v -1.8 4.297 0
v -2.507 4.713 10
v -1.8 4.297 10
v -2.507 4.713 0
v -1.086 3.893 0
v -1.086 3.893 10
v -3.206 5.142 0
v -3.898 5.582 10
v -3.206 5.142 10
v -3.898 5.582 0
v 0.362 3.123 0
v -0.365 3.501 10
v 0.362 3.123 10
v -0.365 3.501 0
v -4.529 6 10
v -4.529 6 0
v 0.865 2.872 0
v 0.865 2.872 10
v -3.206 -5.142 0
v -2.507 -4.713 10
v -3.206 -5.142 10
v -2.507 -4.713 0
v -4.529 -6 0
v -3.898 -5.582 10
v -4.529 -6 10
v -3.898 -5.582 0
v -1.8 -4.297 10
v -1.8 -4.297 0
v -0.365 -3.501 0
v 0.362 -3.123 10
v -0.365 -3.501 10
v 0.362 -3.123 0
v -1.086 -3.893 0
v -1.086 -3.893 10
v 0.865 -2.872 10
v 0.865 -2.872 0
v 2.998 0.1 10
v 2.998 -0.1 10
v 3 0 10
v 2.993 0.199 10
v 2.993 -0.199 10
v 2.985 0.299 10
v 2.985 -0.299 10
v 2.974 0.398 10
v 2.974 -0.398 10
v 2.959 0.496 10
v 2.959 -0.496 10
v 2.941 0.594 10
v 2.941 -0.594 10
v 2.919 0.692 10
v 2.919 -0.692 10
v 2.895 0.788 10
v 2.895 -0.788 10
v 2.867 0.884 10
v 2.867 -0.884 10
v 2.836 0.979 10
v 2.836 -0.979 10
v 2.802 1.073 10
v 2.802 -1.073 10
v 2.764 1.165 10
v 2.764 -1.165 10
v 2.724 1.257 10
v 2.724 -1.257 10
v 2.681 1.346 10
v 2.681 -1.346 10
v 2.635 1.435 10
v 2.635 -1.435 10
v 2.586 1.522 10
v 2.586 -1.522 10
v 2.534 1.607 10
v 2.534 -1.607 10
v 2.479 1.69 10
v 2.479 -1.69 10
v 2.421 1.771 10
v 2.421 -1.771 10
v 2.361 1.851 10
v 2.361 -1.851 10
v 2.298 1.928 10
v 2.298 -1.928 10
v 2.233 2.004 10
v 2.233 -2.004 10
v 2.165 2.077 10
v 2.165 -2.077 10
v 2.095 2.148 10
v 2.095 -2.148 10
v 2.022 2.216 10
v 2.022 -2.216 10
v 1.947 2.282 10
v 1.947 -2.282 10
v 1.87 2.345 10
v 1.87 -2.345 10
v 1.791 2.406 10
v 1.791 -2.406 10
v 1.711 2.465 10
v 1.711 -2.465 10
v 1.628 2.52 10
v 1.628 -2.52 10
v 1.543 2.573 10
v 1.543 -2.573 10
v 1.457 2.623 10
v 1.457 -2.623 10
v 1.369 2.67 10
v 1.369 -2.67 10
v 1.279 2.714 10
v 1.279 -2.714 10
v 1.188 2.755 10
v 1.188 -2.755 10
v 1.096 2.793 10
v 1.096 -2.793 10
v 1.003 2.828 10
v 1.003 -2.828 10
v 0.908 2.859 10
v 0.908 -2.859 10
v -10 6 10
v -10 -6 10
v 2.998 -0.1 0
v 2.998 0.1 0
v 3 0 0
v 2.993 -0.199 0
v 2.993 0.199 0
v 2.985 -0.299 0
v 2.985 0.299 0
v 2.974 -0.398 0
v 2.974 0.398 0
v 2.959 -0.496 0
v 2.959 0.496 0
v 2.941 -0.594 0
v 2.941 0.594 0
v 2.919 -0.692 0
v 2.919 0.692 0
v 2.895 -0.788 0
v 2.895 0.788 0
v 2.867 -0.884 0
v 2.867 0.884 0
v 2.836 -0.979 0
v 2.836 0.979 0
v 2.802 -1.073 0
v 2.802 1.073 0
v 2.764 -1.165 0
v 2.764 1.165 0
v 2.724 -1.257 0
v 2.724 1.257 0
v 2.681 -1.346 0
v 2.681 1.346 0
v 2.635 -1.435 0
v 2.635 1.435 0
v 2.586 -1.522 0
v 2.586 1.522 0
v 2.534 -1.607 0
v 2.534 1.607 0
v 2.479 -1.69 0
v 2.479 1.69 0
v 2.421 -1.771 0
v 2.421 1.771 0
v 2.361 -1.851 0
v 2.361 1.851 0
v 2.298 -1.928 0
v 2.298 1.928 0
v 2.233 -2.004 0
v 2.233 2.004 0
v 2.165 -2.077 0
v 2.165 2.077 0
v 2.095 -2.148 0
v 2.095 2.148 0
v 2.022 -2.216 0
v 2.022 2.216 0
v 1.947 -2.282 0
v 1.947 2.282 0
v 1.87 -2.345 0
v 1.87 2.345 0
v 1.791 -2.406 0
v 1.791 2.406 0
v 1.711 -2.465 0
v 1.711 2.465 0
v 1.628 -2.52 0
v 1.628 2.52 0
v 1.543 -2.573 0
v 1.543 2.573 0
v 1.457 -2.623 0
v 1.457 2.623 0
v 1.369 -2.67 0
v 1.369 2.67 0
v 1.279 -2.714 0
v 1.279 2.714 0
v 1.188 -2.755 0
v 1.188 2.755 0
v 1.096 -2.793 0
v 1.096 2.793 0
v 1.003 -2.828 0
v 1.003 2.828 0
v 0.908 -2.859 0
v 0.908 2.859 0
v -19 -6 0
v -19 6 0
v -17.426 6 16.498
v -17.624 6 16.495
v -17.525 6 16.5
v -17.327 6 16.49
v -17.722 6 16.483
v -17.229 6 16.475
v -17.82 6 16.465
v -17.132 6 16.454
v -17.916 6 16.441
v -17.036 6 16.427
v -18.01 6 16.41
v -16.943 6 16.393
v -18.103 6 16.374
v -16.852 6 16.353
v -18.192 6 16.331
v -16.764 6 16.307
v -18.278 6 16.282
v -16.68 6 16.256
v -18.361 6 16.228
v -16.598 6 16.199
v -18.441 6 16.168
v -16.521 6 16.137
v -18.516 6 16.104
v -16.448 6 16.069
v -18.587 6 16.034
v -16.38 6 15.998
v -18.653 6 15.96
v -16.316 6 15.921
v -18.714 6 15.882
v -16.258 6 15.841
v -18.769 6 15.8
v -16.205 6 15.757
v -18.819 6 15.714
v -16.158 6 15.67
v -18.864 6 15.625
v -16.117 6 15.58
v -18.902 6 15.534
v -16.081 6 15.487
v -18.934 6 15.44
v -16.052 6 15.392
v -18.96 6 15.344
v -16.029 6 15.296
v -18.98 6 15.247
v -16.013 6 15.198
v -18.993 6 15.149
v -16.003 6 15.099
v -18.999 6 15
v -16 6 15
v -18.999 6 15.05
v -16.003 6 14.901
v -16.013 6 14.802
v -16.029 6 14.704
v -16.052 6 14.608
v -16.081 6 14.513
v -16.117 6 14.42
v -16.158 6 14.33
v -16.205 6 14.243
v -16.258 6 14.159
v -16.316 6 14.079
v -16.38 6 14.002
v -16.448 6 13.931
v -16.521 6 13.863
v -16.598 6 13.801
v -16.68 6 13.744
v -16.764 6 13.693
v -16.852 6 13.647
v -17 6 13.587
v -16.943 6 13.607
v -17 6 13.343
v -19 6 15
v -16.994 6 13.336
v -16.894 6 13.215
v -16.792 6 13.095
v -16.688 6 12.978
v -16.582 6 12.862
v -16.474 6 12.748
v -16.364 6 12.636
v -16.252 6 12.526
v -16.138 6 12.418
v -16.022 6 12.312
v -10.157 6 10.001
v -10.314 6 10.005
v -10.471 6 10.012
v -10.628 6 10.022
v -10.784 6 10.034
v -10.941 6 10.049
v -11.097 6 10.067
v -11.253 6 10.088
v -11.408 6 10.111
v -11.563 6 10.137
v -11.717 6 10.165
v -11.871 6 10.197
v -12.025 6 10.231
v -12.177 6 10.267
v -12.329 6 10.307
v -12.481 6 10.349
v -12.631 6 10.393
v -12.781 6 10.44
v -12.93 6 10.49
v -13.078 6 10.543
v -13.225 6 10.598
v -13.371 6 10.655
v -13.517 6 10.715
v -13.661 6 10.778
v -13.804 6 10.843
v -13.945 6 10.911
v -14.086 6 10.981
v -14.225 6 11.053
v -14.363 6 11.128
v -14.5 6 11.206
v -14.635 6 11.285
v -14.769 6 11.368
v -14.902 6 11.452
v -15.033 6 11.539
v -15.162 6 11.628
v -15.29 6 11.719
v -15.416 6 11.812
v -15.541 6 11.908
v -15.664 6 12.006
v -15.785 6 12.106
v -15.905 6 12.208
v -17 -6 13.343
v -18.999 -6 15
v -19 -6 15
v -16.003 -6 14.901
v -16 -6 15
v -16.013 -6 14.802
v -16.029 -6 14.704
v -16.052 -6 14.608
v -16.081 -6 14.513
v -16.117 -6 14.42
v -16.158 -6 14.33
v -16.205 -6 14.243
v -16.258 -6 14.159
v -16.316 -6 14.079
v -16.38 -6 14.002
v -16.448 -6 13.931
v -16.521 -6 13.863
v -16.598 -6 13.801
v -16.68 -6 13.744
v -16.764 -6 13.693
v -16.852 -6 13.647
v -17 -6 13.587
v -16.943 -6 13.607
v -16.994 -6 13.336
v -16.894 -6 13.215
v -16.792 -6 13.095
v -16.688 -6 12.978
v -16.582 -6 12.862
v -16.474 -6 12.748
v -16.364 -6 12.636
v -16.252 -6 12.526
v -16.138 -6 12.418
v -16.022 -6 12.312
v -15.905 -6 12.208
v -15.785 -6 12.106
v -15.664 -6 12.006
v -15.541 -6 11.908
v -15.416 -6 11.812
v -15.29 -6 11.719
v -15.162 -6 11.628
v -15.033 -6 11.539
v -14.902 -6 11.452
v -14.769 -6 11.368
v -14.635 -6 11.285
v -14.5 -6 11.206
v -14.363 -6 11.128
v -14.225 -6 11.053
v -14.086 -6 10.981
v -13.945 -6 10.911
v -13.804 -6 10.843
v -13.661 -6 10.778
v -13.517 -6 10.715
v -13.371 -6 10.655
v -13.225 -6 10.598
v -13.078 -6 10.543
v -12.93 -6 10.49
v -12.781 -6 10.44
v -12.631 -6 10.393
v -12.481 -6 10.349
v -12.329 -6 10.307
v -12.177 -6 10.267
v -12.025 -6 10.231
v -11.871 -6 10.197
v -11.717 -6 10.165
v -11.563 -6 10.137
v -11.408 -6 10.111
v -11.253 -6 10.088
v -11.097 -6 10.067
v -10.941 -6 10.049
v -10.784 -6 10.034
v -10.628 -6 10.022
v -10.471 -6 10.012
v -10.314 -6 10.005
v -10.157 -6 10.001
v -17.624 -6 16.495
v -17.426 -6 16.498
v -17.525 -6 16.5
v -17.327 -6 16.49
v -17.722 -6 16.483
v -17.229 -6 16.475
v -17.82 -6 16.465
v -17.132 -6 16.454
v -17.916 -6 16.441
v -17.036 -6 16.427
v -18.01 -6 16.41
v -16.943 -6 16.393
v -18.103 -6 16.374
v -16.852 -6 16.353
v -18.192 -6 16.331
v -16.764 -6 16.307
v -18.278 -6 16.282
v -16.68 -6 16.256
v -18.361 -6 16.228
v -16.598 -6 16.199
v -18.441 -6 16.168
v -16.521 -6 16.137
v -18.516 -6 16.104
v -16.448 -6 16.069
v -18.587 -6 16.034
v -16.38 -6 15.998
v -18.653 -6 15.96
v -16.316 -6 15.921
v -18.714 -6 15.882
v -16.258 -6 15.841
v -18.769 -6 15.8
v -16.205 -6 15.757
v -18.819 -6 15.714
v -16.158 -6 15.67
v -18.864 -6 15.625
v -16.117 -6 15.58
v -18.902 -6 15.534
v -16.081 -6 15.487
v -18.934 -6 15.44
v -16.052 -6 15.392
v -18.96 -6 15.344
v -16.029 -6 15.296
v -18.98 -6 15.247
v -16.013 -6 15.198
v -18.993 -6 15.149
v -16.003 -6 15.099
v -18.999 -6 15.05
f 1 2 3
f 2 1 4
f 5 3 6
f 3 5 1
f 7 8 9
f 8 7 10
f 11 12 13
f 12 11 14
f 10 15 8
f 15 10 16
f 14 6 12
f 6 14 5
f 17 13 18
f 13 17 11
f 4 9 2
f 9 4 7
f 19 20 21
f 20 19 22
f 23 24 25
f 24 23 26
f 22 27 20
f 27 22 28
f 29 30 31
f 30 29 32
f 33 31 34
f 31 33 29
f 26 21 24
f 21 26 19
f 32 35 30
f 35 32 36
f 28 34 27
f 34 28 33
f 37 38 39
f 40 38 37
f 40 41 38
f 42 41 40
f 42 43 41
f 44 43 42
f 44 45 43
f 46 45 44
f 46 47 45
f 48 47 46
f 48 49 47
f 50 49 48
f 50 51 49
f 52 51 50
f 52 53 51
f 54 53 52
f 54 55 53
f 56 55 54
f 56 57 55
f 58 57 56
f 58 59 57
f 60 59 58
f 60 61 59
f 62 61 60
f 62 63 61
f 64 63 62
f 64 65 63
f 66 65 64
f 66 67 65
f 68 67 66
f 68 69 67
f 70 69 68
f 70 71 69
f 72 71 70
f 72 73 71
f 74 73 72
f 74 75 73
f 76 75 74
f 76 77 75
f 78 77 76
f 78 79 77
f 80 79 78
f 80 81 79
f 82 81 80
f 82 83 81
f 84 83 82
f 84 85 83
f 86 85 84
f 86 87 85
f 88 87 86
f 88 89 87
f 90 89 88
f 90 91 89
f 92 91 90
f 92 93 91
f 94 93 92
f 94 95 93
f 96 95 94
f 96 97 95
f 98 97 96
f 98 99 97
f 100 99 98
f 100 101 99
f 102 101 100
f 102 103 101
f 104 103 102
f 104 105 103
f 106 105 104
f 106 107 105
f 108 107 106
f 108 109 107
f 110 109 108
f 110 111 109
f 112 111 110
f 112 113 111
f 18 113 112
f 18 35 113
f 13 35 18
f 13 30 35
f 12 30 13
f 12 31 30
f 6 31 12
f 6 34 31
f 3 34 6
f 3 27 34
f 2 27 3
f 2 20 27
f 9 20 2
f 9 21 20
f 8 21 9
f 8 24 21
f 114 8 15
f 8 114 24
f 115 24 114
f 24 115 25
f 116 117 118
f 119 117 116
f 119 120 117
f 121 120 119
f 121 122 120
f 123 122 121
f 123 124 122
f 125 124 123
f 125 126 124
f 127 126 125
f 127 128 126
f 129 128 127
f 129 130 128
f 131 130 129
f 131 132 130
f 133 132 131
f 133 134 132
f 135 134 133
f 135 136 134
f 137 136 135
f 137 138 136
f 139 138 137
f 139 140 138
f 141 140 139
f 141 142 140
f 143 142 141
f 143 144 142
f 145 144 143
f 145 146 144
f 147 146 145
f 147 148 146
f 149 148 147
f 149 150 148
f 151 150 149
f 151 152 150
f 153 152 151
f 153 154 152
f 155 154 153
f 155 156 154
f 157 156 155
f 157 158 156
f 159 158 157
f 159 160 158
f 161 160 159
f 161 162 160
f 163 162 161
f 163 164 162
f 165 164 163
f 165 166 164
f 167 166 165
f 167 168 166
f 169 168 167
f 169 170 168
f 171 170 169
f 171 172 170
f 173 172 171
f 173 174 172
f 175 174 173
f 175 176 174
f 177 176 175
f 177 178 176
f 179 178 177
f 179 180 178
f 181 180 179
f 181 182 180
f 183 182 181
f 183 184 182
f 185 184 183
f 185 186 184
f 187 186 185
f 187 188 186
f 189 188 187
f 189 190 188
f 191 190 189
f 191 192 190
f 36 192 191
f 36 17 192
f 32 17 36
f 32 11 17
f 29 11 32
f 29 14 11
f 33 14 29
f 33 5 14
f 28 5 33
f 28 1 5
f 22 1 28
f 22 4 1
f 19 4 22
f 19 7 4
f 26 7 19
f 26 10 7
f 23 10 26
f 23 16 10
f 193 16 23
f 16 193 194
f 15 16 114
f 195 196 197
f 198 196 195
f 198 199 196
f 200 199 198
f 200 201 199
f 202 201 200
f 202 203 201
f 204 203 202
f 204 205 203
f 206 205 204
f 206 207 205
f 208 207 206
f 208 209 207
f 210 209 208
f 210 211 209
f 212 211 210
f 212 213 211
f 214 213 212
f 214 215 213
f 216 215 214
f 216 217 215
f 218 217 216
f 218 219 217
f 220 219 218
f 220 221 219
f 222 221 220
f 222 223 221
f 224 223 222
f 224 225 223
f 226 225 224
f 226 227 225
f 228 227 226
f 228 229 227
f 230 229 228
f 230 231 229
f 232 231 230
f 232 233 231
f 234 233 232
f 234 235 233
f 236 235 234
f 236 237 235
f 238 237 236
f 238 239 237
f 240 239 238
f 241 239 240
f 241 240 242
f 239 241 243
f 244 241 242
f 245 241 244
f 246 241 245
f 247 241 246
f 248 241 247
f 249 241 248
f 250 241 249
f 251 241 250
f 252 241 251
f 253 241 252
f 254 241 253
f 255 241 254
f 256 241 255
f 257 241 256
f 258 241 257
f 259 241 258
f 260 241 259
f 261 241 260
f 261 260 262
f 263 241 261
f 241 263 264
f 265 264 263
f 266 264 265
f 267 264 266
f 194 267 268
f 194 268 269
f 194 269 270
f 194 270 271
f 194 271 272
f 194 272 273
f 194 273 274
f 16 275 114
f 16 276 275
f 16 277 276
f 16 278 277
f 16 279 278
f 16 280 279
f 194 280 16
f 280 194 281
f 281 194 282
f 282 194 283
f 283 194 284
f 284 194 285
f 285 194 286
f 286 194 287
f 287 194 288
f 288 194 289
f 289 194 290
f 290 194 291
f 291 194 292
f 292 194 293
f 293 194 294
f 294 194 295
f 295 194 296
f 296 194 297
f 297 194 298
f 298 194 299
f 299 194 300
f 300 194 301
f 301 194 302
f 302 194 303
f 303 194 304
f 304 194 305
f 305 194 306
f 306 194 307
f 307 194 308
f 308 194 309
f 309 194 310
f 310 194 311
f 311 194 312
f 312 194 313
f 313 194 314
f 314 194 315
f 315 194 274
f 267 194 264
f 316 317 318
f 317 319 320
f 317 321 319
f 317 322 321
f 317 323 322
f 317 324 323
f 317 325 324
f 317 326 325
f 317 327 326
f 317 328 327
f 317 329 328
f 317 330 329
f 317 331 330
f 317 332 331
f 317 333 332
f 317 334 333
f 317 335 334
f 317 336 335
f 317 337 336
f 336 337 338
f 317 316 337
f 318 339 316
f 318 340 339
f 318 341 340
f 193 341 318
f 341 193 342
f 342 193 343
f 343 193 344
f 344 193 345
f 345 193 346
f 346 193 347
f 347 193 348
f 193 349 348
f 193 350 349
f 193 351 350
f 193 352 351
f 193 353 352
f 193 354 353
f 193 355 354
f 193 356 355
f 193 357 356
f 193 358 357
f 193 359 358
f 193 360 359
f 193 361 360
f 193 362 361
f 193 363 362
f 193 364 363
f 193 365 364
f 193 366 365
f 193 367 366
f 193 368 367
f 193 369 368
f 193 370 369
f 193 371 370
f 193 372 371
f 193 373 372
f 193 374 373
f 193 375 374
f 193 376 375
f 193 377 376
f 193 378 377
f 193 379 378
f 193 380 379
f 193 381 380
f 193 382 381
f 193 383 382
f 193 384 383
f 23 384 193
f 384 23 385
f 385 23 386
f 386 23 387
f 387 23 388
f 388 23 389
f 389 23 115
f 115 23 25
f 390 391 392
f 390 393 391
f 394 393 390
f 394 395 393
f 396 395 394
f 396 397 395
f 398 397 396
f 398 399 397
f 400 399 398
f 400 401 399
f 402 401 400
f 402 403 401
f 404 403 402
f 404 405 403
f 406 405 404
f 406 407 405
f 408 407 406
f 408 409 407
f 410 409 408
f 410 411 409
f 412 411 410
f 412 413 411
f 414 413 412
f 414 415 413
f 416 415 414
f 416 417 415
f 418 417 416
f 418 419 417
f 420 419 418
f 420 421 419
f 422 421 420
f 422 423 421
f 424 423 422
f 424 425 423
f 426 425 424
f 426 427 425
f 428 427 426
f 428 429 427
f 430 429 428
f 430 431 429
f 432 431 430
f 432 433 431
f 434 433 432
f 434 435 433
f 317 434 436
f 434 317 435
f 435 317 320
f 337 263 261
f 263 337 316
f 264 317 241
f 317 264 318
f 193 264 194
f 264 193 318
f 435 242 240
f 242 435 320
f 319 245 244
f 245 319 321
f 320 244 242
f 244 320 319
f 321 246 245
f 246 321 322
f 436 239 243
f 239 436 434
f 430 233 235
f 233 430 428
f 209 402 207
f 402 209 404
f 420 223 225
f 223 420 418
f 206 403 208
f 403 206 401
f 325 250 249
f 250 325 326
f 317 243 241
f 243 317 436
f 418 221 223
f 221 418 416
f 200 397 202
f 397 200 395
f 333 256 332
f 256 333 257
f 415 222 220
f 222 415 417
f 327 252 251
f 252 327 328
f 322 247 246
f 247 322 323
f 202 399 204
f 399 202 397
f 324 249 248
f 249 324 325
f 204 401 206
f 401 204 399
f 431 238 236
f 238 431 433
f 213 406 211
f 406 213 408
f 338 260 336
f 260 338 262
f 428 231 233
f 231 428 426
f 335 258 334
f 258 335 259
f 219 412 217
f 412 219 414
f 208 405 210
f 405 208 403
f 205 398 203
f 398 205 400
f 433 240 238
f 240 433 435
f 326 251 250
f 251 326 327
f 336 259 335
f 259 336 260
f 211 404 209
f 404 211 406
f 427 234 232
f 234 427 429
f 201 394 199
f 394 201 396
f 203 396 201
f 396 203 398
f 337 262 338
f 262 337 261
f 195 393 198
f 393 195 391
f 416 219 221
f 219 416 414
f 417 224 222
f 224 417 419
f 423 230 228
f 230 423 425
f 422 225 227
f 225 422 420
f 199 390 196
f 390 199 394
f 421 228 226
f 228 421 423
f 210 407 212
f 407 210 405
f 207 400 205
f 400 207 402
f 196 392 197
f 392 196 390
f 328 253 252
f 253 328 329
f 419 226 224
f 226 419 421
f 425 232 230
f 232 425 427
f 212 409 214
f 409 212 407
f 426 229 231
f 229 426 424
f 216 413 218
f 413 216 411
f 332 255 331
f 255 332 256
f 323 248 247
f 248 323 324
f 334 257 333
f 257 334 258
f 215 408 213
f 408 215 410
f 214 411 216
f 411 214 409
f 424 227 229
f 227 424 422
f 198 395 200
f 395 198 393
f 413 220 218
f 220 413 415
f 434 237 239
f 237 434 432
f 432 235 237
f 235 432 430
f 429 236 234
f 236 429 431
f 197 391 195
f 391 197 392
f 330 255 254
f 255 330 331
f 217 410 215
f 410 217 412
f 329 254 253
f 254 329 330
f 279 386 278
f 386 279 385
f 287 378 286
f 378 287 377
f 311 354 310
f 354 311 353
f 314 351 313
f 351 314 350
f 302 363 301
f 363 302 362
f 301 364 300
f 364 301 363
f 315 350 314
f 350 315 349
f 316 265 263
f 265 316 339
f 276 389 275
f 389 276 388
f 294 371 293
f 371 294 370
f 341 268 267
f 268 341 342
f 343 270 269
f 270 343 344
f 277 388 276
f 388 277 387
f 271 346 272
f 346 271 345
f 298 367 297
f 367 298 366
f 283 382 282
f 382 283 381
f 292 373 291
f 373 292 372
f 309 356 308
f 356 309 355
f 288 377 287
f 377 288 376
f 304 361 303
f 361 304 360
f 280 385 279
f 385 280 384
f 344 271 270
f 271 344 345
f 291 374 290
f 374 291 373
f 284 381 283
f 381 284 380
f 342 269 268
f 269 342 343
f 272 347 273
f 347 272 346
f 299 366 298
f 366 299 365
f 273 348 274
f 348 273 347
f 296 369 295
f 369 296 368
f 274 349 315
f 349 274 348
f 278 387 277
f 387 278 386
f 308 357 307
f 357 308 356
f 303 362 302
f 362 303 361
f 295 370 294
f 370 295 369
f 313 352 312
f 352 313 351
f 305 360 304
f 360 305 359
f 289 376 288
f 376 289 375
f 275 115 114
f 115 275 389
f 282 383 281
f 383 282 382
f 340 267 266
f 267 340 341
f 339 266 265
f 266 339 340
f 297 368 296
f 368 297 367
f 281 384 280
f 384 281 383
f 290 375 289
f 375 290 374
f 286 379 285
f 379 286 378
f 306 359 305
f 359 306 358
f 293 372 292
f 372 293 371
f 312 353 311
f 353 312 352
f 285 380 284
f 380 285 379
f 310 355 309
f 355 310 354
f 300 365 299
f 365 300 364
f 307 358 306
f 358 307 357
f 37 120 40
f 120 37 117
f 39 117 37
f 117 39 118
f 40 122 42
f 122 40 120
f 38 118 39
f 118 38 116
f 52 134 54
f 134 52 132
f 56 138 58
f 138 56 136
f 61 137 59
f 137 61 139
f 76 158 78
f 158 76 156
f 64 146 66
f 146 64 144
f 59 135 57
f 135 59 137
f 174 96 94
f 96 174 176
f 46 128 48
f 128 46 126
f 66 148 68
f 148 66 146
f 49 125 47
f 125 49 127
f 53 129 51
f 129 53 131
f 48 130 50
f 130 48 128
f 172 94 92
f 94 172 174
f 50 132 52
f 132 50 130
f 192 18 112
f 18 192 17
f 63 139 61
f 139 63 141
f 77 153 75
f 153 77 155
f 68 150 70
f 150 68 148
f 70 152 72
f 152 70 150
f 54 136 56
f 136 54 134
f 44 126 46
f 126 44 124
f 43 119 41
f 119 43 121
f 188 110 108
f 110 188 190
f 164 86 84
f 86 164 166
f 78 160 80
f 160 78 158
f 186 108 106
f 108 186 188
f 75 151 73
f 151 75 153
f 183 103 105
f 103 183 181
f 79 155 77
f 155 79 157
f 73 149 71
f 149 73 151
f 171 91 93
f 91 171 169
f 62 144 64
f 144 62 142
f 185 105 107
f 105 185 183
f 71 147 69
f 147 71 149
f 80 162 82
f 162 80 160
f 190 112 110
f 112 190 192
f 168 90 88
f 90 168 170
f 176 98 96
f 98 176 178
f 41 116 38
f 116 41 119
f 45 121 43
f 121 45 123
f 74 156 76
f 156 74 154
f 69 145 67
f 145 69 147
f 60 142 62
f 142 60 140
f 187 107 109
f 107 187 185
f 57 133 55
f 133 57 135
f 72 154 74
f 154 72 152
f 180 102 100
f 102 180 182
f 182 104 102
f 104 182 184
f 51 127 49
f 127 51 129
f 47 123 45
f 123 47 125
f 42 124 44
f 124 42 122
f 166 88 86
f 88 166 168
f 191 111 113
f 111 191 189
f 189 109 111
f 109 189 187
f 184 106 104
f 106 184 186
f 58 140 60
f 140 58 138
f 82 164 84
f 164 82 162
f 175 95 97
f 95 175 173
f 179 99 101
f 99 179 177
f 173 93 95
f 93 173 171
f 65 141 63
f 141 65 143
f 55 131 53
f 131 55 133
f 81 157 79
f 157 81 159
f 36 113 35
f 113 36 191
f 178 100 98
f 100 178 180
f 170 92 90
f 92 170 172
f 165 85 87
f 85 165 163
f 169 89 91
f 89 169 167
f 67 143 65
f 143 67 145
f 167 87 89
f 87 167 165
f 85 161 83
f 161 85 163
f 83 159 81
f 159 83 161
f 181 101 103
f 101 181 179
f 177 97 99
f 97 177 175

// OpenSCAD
// VHS-cleaning: Ratchet Bypass Insert
// Repo: https://github.com/hornc/VHS-cleaning
// Author: hornc, 2026
// Version: v0.3
// License: CC BY-SA 4.0

$fa = 1;    // Minimum angle per fragment in degrees
$fs = 0.1;  // Minimum length of each fragment in mm 

post_r = 3;

cylinder(10, post_r, post_r);

difference(){
    translate([-11+(post_r/2) + 1, 0, 5])
        cube([22 - (post_r), 12, 10], center=true);
    union(){
        translate([21.7, 45, -4])
            cylinder(20, d=94);
        translate([21.7, -45, -4])
            cylinder(20, d=94);
    }
}

translate([-22 + (post_r), -6, 0]) {
    cube([2, 12, 15]);          // vertical back
    translate([1.5, 0, 15])
        rotate([-90, 0, 0])
            cylinder(12, d=3);  // rounded grip
}

translate([-18, -6, 10]){
    difference(){
        cube([8, 12, 8]);
        
        rotate([90, 0, 0])
            translate([8, 9, -15])
            cylinder(20, d=18);
    }
}
